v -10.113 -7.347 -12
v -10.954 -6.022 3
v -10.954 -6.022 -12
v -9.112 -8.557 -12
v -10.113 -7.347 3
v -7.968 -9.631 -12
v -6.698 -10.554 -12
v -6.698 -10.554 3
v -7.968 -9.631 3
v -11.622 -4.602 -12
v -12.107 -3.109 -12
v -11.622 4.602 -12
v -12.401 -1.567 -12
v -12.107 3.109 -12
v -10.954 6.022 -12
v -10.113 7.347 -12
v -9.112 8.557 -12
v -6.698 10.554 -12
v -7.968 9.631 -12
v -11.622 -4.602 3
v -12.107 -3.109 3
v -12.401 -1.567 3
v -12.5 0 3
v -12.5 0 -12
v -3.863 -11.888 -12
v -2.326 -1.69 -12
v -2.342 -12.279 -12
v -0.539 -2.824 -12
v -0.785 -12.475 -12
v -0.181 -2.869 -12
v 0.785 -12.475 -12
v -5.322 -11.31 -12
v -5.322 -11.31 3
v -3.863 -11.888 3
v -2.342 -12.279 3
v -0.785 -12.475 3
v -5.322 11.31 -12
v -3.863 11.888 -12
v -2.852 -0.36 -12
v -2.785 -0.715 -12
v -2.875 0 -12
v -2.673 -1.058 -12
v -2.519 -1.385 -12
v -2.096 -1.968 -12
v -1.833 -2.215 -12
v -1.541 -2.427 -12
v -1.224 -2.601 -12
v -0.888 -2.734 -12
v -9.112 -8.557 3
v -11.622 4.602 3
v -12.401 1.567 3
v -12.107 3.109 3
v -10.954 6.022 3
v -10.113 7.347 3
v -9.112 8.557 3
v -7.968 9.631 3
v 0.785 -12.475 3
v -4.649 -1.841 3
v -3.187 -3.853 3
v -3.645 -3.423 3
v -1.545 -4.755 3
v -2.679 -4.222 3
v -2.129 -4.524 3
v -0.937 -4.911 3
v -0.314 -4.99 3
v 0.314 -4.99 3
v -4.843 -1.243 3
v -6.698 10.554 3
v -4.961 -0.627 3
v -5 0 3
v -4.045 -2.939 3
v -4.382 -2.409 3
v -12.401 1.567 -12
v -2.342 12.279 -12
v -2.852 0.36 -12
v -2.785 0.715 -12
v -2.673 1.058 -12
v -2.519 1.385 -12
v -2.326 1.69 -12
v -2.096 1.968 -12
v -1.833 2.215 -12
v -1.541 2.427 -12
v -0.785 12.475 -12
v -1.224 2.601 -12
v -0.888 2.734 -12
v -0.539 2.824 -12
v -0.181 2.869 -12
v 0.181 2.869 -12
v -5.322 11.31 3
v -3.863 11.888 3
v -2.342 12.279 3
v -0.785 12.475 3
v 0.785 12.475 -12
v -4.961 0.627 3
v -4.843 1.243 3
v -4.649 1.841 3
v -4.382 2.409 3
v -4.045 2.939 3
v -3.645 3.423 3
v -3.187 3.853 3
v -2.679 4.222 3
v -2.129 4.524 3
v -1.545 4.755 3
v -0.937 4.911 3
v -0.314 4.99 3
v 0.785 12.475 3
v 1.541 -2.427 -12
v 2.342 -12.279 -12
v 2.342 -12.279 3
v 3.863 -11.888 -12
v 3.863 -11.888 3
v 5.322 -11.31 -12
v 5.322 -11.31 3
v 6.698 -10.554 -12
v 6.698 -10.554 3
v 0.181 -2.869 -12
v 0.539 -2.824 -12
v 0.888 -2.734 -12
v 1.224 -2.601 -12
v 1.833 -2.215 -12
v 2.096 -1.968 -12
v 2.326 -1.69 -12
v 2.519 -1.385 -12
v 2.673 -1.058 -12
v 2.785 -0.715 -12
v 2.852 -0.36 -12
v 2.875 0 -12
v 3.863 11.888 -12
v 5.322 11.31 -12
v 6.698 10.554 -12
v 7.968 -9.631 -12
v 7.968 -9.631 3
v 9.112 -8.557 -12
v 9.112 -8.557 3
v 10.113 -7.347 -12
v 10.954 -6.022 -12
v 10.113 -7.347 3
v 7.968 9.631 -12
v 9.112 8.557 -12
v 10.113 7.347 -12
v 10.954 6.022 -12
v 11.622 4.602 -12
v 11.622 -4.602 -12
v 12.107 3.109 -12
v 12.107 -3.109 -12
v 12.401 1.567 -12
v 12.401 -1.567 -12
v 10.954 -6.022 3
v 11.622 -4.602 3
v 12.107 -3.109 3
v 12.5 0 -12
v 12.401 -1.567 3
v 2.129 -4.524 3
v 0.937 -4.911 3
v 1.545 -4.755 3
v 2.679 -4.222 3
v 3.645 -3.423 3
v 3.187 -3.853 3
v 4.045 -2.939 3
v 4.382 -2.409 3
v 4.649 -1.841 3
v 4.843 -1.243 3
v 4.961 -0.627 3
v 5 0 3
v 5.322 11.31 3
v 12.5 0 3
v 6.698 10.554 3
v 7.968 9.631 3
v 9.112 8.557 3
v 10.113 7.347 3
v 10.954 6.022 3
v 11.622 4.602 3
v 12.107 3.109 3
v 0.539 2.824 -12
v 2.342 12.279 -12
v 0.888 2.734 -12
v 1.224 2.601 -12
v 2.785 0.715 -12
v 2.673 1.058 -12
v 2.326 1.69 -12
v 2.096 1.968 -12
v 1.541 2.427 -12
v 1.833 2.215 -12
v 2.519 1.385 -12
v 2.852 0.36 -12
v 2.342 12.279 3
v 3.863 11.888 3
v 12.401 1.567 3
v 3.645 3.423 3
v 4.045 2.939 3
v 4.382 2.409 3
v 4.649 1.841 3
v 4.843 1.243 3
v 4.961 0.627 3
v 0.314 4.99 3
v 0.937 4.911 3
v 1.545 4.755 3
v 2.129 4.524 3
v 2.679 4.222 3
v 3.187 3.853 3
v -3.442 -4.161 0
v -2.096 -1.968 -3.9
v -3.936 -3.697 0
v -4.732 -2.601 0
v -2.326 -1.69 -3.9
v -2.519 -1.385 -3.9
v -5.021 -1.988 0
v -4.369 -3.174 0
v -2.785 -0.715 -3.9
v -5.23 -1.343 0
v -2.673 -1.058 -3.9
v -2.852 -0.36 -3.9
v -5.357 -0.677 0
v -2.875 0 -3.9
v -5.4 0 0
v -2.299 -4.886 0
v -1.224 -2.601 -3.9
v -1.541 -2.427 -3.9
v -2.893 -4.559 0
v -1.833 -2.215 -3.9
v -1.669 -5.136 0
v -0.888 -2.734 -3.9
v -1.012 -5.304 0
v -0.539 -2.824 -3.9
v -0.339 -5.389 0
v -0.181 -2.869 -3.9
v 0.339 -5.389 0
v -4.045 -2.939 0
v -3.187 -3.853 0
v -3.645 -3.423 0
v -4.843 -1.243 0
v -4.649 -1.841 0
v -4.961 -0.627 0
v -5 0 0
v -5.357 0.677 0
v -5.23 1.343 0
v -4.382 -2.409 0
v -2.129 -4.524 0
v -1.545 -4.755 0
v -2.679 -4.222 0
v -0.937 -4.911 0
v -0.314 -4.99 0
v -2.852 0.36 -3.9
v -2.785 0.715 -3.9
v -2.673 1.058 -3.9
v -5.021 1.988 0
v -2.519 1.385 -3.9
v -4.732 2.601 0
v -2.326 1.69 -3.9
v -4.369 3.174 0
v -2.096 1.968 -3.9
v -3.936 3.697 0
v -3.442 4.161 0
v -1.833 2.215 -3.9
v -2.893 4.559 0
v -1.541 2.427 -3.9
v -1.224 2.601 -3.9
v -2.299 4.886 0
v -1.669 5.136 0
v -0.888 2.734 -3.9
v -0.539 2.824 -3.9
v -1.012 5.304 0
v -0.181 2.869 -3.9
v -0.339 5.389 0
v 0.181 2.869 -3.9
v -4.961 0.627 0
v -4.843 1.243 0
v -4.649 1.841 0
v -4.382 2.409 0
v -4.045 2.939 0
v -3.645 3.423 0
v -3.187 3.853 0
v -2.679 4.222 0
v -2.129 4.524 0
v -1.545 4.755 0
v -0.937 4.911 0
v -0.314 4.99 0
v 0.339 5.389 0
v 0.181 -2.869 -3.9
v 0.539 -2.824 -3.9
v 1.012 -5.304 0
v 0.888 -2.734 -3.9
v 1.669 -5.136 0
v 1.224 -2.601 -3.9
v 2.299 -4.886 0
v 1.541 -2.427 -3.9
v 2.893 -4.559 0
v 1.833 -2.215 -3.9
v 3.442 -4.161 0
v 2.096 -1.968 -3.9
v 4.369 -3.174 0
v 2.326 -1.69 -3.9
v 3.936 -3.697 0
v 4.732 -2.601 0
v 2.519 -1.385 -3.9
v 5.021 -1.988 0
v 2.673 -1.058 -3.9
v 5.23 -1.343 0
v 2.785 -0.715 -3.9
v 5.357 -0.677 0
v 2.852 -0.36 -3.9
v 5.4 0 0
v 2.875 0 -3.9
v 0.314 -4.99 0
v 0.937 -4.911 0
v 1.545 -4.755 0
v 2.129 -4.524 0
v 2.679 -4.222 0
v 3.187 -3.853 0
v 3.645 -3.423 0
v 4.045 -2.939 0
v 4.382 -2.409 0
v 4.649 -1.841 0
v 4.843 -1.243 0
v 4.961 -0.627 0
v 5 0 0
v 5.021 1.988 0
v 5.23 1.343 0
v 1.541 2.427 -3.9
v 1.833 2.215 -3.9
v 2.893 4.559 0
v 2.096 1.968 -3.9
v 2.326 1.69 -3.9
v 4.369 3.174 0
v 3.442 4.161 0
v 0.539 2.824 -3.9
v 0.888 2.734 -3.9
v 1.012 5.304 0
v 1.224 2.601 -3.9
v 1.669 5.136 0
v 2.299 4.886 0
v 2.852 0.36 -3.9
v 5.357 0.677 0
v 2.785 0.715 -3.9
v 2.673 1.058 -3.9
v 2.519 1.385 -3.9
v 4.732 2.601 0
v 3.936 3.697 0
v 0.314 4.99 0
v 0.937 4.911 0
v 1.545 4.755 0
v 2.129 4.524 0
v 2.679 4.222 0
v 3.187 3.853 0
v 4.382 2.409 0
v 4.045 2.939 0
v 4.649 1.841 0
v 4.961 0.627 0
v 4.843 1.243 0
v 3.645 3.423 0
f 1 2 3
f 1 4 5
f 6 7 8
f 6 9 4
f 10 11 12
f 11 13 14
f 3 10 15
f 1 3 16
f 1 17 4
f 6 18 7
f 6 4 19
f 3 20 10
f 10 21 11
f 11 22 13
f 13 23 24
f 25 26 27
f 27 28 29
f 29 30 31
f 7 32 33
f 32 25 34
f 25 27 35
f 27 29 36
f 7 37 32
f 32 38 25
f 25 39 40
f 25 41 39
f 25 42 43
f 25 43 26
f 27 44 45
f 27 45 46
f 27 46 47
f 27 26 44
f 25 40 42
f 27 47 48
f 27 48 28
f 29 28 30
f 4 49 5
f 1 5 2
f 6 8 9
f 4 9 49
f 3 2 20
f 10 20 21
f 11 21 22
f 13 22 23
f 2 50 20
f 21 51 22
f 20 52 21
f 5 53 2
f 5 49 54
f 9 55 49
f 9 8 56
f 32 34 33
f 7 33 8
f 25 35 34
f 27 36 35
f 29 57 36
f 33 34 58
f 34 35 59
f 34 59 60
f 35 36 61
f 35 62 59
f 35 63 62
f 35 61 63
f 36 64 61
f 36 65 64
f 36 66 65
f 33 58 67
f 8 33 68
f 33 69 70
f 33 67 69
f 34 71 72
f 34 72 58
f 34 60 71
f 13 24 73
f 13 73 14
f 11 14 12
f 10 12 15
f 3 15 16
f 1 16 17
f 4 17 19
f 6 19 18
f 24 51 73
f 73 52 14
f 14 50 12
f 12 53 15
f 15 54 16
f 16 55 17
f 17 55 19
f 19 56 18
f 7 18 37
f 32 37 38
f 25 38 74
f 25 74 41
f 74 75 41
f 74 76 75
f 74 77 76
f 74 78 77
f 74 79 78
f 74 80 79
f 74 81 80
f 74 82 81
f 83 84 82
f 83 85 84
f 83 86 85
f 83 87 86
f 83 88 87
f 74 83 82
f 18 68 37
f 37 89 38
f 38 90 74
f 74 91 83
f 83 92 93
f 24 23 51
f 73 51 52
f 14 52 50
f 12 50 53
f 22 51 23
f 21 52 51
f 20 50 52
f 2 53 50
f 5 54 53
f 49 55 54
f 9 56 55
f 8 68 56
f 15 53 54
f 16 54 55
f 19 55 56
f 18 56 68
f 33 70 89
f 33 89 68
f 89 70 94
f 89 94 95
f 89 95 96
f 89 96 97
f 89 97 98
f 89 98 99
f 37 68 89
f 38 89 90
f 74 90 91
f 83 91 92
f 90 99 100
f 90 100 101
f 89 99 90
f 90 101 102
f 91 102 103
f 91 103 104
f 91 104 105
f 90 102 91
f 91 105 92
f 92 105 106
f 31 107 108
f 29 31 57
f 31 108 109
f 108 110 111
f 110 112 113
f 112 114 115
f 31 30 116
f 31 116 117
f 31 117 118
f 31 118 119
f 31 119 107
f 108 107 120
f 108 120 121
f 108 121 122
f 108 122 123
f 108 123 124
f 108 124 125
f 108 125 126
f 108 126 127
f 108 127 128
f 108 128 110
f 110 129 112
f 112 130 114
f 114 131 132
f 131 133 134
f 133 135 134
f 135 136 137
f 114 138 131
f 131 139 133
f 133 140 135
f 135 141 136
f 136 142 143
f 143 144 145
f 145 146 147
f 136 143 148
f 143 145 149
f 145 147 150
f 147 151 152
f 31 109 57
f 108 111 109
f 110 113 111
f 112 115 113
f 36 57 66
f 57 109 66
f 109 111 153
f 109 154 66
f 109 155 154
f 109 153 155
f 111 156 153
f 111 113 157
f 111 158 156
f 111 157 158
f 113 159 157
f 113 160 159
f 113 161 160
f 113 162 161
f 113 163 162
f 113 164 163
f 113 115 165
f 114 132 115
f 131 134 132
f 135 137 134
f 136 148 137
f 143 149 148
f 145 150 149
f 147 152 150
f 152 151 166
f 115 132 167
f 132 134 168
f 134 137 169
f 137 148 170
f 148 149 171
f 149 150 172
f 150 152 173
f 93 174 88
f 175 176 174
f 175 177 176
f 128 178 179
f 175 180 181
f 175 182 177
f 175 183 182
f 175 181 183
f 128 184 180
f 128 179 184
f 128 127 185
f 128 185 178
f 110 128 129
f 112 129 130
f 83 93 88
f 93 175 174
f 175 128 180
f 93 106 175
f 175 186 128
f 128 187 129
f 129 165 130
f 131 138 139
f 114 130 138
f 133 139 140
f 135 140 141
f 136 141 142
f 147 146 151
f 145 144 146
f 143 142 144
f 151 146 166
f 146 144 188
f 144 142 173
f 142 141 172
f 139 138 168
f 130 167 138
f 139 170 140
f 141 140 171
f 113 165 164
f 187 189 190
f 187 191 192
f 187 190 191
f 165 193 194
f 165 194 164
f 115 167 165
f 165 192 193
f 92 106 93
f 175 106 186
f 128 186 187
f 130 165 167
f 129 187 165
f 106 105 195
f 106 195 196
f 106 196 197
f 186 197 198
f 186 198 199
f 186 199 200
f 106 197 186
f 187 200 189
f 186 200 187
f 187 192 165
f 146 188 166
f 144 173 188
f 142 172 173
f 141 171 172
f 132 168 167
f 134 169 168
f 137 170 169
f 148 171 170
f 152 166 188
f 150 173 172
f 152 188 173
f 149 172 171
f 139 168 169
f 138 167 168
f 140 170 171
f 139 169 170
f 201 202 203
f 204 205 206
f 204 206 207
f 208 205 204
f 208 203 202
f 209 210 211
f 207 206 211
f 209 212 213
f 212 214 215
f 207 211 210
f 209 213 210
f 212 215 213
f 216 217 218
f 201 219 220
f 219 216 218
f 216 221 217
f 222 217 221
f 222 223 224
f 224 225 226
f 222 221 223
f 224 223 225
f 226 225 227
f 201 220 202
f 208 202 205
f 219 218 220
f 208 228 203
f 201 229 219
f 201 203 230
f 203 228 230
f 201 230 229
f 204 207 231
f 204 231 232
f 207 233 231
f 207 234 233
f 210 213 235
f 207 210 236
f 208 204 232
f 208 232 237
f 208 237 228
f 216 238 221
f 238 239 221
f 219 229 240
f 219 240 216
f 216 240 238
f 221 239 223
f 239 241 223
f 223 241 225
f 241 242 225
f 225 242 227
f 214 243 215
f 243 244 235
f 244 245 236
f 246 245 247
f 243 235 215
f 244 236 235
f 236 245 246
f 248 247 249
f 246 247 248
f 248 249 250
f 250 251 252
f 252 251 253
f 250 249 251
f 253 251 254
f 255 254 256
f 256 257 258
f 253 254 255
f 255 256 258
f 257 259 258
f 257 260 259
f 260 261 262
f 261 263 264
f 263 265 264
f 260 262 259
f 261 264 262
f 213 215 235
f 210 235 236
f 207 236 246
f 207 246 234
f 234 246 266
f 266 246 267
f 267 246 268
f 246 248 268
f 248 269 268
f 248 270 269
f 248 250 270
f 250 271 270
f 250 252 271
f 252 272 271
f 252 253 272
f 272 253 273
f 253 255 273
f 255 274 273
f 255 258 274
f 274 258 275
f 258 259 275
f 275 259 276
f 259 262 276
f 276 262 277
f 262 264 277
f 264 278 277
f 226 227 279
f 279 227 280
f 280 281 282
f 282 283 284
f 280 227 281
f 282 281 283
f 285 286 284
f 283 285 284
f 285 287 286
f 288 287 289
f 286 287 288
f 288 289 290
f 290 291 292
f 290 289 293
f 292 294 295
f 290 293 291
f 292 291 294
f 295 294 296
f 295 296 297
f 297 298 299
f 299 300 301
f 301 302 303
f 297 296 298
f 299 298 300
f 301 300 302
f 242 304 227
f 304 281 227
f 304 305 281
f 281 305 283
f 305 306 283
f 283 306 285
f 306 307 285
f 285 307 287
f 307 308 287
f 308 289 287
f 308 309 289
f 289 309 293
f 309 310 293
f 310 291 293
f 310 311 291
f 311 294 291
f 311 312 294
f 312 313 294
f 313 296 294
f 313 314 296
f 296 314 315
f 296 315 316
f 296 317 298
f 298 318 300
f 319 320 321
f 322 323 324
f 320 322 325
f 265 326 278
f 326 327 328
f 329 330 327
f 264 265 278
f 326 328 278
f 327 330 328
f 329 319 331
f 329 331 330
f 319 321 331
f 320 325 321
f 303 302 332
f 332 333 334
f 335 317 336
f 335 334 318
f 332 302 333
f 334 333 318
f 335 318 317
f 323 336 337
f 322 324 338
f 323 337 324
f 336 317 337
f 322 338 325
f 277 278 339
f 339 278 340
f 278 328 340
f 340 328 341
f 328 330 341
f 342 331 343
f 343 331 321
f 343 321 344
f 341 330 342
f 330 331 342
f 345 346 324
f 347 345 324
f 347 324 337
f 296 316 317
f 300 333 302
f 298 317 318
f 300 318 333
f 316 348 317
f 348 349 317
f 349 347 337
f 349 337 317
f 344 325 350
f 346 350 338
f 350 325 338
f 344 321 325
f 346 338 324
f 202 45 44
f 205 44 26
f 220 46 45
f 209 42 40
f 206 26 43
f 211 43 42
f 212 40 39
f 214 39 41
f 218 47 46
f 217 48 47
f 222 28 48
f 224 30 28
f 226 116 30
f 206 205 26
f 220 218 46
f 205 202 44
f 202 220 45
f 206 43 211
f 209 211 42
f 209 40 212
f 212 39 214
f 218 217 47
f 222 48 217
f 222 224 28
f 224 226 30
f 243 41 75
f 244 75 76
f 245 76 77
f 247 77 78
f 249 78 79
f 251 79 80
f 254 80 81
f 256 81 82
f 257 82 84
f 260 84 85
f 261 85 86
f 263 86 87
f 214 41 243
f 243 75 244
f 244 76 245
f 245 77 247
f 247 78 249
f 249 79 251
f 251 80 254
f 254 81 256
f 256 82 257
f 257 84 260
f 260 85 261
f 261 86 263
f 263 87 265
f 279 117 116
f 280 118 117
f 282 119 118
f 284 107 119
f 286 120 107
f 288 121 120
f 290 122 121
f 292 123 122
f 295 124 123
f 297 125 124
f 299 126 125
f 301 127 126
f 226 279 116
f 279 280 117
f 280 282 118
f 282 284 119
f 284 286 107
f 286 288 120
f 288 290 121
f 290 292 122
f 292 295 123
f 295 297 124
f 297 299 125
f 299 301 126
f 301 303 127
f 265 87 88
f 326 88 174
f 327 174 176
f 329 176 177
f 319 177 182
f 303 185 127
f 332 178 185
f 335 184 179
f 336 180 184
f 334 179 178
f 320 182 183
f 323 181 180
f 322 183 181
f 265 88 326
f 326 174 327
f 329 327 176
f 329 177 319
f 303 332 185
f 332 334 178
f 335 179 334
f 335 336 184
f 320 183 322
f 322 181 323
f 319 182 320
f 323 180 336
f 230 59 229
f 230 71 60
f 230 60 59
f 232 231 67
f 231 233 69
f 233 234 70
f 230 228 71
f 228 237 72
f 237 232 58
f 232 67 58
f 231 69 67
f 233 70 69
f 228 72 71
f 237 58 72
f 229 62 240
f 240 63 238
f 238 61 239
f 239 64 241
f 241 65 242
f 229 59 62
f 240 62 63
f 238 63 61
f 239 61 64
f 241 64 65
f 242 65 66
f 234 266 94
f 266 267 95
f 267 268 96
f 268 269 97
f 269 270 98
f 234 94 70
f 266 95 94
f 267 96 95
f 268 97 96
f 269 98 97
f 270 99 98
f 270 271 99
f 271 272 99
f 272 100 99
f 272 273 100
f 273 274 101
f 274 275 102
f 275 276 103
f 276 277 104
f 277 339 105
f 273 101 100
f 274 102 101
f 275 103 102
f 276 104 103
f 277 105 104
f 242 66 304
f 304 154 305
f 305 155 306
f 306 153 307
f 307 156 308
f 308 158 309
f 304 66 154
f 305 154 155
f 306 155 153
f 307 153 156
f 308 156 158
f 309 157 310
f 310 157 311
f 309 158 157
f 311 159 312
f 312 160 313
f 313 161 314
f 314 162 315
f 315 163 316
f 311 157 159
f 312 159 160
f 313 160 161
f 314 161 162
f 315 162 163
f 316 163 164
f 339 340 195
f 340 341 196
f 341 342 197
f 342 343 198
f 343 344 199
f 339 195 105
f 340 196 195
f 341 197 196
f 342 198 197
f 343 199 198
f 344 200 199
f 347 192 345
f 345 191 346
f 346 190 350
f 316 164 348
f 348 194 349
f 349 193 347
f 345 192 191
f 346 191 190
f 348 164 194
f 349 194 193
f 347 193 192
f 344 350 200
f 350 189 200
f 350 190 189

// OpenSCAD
$fn = 50;


difference() {
	union() {
		translate(v = [0, 0, -12.0000000000]) {
			cylinder(h = 15, r = 12.5000000000);
		}
		#translate(v = [0, 0, -15.0000000000]) {
			cylinder(h = 15, r = 2.8750000000);
		}
	}
	union() {
		translate(v = [0, 0, 0]) {
			rotate(a = [0, 0, 0]) {
				difference() {
					union() {
						translate(v = [0, 0, -15.0000000000]) {
							cylinder(h = 15, r = 2.6000000000);
						}
						translate(v = [0, 0, -3.9000000000]) {
							cylinder(h = 3.9000000000, r1 = 2.8750000000, r2 = 5.4000000000);
						}
						translate(v = [0, 0, -15.0000000000]) {
							cylinder(h = 15, r = 2.8750000000);
						}
						translate(v = [0, 0, -15.0000000000]) {
							cylinder(h = 15, r = 2.6000000000);
						}
					}
					union();
				}
			}
		}
		#cylinder(h = 3, r = 5.0000000000);
	}
}
